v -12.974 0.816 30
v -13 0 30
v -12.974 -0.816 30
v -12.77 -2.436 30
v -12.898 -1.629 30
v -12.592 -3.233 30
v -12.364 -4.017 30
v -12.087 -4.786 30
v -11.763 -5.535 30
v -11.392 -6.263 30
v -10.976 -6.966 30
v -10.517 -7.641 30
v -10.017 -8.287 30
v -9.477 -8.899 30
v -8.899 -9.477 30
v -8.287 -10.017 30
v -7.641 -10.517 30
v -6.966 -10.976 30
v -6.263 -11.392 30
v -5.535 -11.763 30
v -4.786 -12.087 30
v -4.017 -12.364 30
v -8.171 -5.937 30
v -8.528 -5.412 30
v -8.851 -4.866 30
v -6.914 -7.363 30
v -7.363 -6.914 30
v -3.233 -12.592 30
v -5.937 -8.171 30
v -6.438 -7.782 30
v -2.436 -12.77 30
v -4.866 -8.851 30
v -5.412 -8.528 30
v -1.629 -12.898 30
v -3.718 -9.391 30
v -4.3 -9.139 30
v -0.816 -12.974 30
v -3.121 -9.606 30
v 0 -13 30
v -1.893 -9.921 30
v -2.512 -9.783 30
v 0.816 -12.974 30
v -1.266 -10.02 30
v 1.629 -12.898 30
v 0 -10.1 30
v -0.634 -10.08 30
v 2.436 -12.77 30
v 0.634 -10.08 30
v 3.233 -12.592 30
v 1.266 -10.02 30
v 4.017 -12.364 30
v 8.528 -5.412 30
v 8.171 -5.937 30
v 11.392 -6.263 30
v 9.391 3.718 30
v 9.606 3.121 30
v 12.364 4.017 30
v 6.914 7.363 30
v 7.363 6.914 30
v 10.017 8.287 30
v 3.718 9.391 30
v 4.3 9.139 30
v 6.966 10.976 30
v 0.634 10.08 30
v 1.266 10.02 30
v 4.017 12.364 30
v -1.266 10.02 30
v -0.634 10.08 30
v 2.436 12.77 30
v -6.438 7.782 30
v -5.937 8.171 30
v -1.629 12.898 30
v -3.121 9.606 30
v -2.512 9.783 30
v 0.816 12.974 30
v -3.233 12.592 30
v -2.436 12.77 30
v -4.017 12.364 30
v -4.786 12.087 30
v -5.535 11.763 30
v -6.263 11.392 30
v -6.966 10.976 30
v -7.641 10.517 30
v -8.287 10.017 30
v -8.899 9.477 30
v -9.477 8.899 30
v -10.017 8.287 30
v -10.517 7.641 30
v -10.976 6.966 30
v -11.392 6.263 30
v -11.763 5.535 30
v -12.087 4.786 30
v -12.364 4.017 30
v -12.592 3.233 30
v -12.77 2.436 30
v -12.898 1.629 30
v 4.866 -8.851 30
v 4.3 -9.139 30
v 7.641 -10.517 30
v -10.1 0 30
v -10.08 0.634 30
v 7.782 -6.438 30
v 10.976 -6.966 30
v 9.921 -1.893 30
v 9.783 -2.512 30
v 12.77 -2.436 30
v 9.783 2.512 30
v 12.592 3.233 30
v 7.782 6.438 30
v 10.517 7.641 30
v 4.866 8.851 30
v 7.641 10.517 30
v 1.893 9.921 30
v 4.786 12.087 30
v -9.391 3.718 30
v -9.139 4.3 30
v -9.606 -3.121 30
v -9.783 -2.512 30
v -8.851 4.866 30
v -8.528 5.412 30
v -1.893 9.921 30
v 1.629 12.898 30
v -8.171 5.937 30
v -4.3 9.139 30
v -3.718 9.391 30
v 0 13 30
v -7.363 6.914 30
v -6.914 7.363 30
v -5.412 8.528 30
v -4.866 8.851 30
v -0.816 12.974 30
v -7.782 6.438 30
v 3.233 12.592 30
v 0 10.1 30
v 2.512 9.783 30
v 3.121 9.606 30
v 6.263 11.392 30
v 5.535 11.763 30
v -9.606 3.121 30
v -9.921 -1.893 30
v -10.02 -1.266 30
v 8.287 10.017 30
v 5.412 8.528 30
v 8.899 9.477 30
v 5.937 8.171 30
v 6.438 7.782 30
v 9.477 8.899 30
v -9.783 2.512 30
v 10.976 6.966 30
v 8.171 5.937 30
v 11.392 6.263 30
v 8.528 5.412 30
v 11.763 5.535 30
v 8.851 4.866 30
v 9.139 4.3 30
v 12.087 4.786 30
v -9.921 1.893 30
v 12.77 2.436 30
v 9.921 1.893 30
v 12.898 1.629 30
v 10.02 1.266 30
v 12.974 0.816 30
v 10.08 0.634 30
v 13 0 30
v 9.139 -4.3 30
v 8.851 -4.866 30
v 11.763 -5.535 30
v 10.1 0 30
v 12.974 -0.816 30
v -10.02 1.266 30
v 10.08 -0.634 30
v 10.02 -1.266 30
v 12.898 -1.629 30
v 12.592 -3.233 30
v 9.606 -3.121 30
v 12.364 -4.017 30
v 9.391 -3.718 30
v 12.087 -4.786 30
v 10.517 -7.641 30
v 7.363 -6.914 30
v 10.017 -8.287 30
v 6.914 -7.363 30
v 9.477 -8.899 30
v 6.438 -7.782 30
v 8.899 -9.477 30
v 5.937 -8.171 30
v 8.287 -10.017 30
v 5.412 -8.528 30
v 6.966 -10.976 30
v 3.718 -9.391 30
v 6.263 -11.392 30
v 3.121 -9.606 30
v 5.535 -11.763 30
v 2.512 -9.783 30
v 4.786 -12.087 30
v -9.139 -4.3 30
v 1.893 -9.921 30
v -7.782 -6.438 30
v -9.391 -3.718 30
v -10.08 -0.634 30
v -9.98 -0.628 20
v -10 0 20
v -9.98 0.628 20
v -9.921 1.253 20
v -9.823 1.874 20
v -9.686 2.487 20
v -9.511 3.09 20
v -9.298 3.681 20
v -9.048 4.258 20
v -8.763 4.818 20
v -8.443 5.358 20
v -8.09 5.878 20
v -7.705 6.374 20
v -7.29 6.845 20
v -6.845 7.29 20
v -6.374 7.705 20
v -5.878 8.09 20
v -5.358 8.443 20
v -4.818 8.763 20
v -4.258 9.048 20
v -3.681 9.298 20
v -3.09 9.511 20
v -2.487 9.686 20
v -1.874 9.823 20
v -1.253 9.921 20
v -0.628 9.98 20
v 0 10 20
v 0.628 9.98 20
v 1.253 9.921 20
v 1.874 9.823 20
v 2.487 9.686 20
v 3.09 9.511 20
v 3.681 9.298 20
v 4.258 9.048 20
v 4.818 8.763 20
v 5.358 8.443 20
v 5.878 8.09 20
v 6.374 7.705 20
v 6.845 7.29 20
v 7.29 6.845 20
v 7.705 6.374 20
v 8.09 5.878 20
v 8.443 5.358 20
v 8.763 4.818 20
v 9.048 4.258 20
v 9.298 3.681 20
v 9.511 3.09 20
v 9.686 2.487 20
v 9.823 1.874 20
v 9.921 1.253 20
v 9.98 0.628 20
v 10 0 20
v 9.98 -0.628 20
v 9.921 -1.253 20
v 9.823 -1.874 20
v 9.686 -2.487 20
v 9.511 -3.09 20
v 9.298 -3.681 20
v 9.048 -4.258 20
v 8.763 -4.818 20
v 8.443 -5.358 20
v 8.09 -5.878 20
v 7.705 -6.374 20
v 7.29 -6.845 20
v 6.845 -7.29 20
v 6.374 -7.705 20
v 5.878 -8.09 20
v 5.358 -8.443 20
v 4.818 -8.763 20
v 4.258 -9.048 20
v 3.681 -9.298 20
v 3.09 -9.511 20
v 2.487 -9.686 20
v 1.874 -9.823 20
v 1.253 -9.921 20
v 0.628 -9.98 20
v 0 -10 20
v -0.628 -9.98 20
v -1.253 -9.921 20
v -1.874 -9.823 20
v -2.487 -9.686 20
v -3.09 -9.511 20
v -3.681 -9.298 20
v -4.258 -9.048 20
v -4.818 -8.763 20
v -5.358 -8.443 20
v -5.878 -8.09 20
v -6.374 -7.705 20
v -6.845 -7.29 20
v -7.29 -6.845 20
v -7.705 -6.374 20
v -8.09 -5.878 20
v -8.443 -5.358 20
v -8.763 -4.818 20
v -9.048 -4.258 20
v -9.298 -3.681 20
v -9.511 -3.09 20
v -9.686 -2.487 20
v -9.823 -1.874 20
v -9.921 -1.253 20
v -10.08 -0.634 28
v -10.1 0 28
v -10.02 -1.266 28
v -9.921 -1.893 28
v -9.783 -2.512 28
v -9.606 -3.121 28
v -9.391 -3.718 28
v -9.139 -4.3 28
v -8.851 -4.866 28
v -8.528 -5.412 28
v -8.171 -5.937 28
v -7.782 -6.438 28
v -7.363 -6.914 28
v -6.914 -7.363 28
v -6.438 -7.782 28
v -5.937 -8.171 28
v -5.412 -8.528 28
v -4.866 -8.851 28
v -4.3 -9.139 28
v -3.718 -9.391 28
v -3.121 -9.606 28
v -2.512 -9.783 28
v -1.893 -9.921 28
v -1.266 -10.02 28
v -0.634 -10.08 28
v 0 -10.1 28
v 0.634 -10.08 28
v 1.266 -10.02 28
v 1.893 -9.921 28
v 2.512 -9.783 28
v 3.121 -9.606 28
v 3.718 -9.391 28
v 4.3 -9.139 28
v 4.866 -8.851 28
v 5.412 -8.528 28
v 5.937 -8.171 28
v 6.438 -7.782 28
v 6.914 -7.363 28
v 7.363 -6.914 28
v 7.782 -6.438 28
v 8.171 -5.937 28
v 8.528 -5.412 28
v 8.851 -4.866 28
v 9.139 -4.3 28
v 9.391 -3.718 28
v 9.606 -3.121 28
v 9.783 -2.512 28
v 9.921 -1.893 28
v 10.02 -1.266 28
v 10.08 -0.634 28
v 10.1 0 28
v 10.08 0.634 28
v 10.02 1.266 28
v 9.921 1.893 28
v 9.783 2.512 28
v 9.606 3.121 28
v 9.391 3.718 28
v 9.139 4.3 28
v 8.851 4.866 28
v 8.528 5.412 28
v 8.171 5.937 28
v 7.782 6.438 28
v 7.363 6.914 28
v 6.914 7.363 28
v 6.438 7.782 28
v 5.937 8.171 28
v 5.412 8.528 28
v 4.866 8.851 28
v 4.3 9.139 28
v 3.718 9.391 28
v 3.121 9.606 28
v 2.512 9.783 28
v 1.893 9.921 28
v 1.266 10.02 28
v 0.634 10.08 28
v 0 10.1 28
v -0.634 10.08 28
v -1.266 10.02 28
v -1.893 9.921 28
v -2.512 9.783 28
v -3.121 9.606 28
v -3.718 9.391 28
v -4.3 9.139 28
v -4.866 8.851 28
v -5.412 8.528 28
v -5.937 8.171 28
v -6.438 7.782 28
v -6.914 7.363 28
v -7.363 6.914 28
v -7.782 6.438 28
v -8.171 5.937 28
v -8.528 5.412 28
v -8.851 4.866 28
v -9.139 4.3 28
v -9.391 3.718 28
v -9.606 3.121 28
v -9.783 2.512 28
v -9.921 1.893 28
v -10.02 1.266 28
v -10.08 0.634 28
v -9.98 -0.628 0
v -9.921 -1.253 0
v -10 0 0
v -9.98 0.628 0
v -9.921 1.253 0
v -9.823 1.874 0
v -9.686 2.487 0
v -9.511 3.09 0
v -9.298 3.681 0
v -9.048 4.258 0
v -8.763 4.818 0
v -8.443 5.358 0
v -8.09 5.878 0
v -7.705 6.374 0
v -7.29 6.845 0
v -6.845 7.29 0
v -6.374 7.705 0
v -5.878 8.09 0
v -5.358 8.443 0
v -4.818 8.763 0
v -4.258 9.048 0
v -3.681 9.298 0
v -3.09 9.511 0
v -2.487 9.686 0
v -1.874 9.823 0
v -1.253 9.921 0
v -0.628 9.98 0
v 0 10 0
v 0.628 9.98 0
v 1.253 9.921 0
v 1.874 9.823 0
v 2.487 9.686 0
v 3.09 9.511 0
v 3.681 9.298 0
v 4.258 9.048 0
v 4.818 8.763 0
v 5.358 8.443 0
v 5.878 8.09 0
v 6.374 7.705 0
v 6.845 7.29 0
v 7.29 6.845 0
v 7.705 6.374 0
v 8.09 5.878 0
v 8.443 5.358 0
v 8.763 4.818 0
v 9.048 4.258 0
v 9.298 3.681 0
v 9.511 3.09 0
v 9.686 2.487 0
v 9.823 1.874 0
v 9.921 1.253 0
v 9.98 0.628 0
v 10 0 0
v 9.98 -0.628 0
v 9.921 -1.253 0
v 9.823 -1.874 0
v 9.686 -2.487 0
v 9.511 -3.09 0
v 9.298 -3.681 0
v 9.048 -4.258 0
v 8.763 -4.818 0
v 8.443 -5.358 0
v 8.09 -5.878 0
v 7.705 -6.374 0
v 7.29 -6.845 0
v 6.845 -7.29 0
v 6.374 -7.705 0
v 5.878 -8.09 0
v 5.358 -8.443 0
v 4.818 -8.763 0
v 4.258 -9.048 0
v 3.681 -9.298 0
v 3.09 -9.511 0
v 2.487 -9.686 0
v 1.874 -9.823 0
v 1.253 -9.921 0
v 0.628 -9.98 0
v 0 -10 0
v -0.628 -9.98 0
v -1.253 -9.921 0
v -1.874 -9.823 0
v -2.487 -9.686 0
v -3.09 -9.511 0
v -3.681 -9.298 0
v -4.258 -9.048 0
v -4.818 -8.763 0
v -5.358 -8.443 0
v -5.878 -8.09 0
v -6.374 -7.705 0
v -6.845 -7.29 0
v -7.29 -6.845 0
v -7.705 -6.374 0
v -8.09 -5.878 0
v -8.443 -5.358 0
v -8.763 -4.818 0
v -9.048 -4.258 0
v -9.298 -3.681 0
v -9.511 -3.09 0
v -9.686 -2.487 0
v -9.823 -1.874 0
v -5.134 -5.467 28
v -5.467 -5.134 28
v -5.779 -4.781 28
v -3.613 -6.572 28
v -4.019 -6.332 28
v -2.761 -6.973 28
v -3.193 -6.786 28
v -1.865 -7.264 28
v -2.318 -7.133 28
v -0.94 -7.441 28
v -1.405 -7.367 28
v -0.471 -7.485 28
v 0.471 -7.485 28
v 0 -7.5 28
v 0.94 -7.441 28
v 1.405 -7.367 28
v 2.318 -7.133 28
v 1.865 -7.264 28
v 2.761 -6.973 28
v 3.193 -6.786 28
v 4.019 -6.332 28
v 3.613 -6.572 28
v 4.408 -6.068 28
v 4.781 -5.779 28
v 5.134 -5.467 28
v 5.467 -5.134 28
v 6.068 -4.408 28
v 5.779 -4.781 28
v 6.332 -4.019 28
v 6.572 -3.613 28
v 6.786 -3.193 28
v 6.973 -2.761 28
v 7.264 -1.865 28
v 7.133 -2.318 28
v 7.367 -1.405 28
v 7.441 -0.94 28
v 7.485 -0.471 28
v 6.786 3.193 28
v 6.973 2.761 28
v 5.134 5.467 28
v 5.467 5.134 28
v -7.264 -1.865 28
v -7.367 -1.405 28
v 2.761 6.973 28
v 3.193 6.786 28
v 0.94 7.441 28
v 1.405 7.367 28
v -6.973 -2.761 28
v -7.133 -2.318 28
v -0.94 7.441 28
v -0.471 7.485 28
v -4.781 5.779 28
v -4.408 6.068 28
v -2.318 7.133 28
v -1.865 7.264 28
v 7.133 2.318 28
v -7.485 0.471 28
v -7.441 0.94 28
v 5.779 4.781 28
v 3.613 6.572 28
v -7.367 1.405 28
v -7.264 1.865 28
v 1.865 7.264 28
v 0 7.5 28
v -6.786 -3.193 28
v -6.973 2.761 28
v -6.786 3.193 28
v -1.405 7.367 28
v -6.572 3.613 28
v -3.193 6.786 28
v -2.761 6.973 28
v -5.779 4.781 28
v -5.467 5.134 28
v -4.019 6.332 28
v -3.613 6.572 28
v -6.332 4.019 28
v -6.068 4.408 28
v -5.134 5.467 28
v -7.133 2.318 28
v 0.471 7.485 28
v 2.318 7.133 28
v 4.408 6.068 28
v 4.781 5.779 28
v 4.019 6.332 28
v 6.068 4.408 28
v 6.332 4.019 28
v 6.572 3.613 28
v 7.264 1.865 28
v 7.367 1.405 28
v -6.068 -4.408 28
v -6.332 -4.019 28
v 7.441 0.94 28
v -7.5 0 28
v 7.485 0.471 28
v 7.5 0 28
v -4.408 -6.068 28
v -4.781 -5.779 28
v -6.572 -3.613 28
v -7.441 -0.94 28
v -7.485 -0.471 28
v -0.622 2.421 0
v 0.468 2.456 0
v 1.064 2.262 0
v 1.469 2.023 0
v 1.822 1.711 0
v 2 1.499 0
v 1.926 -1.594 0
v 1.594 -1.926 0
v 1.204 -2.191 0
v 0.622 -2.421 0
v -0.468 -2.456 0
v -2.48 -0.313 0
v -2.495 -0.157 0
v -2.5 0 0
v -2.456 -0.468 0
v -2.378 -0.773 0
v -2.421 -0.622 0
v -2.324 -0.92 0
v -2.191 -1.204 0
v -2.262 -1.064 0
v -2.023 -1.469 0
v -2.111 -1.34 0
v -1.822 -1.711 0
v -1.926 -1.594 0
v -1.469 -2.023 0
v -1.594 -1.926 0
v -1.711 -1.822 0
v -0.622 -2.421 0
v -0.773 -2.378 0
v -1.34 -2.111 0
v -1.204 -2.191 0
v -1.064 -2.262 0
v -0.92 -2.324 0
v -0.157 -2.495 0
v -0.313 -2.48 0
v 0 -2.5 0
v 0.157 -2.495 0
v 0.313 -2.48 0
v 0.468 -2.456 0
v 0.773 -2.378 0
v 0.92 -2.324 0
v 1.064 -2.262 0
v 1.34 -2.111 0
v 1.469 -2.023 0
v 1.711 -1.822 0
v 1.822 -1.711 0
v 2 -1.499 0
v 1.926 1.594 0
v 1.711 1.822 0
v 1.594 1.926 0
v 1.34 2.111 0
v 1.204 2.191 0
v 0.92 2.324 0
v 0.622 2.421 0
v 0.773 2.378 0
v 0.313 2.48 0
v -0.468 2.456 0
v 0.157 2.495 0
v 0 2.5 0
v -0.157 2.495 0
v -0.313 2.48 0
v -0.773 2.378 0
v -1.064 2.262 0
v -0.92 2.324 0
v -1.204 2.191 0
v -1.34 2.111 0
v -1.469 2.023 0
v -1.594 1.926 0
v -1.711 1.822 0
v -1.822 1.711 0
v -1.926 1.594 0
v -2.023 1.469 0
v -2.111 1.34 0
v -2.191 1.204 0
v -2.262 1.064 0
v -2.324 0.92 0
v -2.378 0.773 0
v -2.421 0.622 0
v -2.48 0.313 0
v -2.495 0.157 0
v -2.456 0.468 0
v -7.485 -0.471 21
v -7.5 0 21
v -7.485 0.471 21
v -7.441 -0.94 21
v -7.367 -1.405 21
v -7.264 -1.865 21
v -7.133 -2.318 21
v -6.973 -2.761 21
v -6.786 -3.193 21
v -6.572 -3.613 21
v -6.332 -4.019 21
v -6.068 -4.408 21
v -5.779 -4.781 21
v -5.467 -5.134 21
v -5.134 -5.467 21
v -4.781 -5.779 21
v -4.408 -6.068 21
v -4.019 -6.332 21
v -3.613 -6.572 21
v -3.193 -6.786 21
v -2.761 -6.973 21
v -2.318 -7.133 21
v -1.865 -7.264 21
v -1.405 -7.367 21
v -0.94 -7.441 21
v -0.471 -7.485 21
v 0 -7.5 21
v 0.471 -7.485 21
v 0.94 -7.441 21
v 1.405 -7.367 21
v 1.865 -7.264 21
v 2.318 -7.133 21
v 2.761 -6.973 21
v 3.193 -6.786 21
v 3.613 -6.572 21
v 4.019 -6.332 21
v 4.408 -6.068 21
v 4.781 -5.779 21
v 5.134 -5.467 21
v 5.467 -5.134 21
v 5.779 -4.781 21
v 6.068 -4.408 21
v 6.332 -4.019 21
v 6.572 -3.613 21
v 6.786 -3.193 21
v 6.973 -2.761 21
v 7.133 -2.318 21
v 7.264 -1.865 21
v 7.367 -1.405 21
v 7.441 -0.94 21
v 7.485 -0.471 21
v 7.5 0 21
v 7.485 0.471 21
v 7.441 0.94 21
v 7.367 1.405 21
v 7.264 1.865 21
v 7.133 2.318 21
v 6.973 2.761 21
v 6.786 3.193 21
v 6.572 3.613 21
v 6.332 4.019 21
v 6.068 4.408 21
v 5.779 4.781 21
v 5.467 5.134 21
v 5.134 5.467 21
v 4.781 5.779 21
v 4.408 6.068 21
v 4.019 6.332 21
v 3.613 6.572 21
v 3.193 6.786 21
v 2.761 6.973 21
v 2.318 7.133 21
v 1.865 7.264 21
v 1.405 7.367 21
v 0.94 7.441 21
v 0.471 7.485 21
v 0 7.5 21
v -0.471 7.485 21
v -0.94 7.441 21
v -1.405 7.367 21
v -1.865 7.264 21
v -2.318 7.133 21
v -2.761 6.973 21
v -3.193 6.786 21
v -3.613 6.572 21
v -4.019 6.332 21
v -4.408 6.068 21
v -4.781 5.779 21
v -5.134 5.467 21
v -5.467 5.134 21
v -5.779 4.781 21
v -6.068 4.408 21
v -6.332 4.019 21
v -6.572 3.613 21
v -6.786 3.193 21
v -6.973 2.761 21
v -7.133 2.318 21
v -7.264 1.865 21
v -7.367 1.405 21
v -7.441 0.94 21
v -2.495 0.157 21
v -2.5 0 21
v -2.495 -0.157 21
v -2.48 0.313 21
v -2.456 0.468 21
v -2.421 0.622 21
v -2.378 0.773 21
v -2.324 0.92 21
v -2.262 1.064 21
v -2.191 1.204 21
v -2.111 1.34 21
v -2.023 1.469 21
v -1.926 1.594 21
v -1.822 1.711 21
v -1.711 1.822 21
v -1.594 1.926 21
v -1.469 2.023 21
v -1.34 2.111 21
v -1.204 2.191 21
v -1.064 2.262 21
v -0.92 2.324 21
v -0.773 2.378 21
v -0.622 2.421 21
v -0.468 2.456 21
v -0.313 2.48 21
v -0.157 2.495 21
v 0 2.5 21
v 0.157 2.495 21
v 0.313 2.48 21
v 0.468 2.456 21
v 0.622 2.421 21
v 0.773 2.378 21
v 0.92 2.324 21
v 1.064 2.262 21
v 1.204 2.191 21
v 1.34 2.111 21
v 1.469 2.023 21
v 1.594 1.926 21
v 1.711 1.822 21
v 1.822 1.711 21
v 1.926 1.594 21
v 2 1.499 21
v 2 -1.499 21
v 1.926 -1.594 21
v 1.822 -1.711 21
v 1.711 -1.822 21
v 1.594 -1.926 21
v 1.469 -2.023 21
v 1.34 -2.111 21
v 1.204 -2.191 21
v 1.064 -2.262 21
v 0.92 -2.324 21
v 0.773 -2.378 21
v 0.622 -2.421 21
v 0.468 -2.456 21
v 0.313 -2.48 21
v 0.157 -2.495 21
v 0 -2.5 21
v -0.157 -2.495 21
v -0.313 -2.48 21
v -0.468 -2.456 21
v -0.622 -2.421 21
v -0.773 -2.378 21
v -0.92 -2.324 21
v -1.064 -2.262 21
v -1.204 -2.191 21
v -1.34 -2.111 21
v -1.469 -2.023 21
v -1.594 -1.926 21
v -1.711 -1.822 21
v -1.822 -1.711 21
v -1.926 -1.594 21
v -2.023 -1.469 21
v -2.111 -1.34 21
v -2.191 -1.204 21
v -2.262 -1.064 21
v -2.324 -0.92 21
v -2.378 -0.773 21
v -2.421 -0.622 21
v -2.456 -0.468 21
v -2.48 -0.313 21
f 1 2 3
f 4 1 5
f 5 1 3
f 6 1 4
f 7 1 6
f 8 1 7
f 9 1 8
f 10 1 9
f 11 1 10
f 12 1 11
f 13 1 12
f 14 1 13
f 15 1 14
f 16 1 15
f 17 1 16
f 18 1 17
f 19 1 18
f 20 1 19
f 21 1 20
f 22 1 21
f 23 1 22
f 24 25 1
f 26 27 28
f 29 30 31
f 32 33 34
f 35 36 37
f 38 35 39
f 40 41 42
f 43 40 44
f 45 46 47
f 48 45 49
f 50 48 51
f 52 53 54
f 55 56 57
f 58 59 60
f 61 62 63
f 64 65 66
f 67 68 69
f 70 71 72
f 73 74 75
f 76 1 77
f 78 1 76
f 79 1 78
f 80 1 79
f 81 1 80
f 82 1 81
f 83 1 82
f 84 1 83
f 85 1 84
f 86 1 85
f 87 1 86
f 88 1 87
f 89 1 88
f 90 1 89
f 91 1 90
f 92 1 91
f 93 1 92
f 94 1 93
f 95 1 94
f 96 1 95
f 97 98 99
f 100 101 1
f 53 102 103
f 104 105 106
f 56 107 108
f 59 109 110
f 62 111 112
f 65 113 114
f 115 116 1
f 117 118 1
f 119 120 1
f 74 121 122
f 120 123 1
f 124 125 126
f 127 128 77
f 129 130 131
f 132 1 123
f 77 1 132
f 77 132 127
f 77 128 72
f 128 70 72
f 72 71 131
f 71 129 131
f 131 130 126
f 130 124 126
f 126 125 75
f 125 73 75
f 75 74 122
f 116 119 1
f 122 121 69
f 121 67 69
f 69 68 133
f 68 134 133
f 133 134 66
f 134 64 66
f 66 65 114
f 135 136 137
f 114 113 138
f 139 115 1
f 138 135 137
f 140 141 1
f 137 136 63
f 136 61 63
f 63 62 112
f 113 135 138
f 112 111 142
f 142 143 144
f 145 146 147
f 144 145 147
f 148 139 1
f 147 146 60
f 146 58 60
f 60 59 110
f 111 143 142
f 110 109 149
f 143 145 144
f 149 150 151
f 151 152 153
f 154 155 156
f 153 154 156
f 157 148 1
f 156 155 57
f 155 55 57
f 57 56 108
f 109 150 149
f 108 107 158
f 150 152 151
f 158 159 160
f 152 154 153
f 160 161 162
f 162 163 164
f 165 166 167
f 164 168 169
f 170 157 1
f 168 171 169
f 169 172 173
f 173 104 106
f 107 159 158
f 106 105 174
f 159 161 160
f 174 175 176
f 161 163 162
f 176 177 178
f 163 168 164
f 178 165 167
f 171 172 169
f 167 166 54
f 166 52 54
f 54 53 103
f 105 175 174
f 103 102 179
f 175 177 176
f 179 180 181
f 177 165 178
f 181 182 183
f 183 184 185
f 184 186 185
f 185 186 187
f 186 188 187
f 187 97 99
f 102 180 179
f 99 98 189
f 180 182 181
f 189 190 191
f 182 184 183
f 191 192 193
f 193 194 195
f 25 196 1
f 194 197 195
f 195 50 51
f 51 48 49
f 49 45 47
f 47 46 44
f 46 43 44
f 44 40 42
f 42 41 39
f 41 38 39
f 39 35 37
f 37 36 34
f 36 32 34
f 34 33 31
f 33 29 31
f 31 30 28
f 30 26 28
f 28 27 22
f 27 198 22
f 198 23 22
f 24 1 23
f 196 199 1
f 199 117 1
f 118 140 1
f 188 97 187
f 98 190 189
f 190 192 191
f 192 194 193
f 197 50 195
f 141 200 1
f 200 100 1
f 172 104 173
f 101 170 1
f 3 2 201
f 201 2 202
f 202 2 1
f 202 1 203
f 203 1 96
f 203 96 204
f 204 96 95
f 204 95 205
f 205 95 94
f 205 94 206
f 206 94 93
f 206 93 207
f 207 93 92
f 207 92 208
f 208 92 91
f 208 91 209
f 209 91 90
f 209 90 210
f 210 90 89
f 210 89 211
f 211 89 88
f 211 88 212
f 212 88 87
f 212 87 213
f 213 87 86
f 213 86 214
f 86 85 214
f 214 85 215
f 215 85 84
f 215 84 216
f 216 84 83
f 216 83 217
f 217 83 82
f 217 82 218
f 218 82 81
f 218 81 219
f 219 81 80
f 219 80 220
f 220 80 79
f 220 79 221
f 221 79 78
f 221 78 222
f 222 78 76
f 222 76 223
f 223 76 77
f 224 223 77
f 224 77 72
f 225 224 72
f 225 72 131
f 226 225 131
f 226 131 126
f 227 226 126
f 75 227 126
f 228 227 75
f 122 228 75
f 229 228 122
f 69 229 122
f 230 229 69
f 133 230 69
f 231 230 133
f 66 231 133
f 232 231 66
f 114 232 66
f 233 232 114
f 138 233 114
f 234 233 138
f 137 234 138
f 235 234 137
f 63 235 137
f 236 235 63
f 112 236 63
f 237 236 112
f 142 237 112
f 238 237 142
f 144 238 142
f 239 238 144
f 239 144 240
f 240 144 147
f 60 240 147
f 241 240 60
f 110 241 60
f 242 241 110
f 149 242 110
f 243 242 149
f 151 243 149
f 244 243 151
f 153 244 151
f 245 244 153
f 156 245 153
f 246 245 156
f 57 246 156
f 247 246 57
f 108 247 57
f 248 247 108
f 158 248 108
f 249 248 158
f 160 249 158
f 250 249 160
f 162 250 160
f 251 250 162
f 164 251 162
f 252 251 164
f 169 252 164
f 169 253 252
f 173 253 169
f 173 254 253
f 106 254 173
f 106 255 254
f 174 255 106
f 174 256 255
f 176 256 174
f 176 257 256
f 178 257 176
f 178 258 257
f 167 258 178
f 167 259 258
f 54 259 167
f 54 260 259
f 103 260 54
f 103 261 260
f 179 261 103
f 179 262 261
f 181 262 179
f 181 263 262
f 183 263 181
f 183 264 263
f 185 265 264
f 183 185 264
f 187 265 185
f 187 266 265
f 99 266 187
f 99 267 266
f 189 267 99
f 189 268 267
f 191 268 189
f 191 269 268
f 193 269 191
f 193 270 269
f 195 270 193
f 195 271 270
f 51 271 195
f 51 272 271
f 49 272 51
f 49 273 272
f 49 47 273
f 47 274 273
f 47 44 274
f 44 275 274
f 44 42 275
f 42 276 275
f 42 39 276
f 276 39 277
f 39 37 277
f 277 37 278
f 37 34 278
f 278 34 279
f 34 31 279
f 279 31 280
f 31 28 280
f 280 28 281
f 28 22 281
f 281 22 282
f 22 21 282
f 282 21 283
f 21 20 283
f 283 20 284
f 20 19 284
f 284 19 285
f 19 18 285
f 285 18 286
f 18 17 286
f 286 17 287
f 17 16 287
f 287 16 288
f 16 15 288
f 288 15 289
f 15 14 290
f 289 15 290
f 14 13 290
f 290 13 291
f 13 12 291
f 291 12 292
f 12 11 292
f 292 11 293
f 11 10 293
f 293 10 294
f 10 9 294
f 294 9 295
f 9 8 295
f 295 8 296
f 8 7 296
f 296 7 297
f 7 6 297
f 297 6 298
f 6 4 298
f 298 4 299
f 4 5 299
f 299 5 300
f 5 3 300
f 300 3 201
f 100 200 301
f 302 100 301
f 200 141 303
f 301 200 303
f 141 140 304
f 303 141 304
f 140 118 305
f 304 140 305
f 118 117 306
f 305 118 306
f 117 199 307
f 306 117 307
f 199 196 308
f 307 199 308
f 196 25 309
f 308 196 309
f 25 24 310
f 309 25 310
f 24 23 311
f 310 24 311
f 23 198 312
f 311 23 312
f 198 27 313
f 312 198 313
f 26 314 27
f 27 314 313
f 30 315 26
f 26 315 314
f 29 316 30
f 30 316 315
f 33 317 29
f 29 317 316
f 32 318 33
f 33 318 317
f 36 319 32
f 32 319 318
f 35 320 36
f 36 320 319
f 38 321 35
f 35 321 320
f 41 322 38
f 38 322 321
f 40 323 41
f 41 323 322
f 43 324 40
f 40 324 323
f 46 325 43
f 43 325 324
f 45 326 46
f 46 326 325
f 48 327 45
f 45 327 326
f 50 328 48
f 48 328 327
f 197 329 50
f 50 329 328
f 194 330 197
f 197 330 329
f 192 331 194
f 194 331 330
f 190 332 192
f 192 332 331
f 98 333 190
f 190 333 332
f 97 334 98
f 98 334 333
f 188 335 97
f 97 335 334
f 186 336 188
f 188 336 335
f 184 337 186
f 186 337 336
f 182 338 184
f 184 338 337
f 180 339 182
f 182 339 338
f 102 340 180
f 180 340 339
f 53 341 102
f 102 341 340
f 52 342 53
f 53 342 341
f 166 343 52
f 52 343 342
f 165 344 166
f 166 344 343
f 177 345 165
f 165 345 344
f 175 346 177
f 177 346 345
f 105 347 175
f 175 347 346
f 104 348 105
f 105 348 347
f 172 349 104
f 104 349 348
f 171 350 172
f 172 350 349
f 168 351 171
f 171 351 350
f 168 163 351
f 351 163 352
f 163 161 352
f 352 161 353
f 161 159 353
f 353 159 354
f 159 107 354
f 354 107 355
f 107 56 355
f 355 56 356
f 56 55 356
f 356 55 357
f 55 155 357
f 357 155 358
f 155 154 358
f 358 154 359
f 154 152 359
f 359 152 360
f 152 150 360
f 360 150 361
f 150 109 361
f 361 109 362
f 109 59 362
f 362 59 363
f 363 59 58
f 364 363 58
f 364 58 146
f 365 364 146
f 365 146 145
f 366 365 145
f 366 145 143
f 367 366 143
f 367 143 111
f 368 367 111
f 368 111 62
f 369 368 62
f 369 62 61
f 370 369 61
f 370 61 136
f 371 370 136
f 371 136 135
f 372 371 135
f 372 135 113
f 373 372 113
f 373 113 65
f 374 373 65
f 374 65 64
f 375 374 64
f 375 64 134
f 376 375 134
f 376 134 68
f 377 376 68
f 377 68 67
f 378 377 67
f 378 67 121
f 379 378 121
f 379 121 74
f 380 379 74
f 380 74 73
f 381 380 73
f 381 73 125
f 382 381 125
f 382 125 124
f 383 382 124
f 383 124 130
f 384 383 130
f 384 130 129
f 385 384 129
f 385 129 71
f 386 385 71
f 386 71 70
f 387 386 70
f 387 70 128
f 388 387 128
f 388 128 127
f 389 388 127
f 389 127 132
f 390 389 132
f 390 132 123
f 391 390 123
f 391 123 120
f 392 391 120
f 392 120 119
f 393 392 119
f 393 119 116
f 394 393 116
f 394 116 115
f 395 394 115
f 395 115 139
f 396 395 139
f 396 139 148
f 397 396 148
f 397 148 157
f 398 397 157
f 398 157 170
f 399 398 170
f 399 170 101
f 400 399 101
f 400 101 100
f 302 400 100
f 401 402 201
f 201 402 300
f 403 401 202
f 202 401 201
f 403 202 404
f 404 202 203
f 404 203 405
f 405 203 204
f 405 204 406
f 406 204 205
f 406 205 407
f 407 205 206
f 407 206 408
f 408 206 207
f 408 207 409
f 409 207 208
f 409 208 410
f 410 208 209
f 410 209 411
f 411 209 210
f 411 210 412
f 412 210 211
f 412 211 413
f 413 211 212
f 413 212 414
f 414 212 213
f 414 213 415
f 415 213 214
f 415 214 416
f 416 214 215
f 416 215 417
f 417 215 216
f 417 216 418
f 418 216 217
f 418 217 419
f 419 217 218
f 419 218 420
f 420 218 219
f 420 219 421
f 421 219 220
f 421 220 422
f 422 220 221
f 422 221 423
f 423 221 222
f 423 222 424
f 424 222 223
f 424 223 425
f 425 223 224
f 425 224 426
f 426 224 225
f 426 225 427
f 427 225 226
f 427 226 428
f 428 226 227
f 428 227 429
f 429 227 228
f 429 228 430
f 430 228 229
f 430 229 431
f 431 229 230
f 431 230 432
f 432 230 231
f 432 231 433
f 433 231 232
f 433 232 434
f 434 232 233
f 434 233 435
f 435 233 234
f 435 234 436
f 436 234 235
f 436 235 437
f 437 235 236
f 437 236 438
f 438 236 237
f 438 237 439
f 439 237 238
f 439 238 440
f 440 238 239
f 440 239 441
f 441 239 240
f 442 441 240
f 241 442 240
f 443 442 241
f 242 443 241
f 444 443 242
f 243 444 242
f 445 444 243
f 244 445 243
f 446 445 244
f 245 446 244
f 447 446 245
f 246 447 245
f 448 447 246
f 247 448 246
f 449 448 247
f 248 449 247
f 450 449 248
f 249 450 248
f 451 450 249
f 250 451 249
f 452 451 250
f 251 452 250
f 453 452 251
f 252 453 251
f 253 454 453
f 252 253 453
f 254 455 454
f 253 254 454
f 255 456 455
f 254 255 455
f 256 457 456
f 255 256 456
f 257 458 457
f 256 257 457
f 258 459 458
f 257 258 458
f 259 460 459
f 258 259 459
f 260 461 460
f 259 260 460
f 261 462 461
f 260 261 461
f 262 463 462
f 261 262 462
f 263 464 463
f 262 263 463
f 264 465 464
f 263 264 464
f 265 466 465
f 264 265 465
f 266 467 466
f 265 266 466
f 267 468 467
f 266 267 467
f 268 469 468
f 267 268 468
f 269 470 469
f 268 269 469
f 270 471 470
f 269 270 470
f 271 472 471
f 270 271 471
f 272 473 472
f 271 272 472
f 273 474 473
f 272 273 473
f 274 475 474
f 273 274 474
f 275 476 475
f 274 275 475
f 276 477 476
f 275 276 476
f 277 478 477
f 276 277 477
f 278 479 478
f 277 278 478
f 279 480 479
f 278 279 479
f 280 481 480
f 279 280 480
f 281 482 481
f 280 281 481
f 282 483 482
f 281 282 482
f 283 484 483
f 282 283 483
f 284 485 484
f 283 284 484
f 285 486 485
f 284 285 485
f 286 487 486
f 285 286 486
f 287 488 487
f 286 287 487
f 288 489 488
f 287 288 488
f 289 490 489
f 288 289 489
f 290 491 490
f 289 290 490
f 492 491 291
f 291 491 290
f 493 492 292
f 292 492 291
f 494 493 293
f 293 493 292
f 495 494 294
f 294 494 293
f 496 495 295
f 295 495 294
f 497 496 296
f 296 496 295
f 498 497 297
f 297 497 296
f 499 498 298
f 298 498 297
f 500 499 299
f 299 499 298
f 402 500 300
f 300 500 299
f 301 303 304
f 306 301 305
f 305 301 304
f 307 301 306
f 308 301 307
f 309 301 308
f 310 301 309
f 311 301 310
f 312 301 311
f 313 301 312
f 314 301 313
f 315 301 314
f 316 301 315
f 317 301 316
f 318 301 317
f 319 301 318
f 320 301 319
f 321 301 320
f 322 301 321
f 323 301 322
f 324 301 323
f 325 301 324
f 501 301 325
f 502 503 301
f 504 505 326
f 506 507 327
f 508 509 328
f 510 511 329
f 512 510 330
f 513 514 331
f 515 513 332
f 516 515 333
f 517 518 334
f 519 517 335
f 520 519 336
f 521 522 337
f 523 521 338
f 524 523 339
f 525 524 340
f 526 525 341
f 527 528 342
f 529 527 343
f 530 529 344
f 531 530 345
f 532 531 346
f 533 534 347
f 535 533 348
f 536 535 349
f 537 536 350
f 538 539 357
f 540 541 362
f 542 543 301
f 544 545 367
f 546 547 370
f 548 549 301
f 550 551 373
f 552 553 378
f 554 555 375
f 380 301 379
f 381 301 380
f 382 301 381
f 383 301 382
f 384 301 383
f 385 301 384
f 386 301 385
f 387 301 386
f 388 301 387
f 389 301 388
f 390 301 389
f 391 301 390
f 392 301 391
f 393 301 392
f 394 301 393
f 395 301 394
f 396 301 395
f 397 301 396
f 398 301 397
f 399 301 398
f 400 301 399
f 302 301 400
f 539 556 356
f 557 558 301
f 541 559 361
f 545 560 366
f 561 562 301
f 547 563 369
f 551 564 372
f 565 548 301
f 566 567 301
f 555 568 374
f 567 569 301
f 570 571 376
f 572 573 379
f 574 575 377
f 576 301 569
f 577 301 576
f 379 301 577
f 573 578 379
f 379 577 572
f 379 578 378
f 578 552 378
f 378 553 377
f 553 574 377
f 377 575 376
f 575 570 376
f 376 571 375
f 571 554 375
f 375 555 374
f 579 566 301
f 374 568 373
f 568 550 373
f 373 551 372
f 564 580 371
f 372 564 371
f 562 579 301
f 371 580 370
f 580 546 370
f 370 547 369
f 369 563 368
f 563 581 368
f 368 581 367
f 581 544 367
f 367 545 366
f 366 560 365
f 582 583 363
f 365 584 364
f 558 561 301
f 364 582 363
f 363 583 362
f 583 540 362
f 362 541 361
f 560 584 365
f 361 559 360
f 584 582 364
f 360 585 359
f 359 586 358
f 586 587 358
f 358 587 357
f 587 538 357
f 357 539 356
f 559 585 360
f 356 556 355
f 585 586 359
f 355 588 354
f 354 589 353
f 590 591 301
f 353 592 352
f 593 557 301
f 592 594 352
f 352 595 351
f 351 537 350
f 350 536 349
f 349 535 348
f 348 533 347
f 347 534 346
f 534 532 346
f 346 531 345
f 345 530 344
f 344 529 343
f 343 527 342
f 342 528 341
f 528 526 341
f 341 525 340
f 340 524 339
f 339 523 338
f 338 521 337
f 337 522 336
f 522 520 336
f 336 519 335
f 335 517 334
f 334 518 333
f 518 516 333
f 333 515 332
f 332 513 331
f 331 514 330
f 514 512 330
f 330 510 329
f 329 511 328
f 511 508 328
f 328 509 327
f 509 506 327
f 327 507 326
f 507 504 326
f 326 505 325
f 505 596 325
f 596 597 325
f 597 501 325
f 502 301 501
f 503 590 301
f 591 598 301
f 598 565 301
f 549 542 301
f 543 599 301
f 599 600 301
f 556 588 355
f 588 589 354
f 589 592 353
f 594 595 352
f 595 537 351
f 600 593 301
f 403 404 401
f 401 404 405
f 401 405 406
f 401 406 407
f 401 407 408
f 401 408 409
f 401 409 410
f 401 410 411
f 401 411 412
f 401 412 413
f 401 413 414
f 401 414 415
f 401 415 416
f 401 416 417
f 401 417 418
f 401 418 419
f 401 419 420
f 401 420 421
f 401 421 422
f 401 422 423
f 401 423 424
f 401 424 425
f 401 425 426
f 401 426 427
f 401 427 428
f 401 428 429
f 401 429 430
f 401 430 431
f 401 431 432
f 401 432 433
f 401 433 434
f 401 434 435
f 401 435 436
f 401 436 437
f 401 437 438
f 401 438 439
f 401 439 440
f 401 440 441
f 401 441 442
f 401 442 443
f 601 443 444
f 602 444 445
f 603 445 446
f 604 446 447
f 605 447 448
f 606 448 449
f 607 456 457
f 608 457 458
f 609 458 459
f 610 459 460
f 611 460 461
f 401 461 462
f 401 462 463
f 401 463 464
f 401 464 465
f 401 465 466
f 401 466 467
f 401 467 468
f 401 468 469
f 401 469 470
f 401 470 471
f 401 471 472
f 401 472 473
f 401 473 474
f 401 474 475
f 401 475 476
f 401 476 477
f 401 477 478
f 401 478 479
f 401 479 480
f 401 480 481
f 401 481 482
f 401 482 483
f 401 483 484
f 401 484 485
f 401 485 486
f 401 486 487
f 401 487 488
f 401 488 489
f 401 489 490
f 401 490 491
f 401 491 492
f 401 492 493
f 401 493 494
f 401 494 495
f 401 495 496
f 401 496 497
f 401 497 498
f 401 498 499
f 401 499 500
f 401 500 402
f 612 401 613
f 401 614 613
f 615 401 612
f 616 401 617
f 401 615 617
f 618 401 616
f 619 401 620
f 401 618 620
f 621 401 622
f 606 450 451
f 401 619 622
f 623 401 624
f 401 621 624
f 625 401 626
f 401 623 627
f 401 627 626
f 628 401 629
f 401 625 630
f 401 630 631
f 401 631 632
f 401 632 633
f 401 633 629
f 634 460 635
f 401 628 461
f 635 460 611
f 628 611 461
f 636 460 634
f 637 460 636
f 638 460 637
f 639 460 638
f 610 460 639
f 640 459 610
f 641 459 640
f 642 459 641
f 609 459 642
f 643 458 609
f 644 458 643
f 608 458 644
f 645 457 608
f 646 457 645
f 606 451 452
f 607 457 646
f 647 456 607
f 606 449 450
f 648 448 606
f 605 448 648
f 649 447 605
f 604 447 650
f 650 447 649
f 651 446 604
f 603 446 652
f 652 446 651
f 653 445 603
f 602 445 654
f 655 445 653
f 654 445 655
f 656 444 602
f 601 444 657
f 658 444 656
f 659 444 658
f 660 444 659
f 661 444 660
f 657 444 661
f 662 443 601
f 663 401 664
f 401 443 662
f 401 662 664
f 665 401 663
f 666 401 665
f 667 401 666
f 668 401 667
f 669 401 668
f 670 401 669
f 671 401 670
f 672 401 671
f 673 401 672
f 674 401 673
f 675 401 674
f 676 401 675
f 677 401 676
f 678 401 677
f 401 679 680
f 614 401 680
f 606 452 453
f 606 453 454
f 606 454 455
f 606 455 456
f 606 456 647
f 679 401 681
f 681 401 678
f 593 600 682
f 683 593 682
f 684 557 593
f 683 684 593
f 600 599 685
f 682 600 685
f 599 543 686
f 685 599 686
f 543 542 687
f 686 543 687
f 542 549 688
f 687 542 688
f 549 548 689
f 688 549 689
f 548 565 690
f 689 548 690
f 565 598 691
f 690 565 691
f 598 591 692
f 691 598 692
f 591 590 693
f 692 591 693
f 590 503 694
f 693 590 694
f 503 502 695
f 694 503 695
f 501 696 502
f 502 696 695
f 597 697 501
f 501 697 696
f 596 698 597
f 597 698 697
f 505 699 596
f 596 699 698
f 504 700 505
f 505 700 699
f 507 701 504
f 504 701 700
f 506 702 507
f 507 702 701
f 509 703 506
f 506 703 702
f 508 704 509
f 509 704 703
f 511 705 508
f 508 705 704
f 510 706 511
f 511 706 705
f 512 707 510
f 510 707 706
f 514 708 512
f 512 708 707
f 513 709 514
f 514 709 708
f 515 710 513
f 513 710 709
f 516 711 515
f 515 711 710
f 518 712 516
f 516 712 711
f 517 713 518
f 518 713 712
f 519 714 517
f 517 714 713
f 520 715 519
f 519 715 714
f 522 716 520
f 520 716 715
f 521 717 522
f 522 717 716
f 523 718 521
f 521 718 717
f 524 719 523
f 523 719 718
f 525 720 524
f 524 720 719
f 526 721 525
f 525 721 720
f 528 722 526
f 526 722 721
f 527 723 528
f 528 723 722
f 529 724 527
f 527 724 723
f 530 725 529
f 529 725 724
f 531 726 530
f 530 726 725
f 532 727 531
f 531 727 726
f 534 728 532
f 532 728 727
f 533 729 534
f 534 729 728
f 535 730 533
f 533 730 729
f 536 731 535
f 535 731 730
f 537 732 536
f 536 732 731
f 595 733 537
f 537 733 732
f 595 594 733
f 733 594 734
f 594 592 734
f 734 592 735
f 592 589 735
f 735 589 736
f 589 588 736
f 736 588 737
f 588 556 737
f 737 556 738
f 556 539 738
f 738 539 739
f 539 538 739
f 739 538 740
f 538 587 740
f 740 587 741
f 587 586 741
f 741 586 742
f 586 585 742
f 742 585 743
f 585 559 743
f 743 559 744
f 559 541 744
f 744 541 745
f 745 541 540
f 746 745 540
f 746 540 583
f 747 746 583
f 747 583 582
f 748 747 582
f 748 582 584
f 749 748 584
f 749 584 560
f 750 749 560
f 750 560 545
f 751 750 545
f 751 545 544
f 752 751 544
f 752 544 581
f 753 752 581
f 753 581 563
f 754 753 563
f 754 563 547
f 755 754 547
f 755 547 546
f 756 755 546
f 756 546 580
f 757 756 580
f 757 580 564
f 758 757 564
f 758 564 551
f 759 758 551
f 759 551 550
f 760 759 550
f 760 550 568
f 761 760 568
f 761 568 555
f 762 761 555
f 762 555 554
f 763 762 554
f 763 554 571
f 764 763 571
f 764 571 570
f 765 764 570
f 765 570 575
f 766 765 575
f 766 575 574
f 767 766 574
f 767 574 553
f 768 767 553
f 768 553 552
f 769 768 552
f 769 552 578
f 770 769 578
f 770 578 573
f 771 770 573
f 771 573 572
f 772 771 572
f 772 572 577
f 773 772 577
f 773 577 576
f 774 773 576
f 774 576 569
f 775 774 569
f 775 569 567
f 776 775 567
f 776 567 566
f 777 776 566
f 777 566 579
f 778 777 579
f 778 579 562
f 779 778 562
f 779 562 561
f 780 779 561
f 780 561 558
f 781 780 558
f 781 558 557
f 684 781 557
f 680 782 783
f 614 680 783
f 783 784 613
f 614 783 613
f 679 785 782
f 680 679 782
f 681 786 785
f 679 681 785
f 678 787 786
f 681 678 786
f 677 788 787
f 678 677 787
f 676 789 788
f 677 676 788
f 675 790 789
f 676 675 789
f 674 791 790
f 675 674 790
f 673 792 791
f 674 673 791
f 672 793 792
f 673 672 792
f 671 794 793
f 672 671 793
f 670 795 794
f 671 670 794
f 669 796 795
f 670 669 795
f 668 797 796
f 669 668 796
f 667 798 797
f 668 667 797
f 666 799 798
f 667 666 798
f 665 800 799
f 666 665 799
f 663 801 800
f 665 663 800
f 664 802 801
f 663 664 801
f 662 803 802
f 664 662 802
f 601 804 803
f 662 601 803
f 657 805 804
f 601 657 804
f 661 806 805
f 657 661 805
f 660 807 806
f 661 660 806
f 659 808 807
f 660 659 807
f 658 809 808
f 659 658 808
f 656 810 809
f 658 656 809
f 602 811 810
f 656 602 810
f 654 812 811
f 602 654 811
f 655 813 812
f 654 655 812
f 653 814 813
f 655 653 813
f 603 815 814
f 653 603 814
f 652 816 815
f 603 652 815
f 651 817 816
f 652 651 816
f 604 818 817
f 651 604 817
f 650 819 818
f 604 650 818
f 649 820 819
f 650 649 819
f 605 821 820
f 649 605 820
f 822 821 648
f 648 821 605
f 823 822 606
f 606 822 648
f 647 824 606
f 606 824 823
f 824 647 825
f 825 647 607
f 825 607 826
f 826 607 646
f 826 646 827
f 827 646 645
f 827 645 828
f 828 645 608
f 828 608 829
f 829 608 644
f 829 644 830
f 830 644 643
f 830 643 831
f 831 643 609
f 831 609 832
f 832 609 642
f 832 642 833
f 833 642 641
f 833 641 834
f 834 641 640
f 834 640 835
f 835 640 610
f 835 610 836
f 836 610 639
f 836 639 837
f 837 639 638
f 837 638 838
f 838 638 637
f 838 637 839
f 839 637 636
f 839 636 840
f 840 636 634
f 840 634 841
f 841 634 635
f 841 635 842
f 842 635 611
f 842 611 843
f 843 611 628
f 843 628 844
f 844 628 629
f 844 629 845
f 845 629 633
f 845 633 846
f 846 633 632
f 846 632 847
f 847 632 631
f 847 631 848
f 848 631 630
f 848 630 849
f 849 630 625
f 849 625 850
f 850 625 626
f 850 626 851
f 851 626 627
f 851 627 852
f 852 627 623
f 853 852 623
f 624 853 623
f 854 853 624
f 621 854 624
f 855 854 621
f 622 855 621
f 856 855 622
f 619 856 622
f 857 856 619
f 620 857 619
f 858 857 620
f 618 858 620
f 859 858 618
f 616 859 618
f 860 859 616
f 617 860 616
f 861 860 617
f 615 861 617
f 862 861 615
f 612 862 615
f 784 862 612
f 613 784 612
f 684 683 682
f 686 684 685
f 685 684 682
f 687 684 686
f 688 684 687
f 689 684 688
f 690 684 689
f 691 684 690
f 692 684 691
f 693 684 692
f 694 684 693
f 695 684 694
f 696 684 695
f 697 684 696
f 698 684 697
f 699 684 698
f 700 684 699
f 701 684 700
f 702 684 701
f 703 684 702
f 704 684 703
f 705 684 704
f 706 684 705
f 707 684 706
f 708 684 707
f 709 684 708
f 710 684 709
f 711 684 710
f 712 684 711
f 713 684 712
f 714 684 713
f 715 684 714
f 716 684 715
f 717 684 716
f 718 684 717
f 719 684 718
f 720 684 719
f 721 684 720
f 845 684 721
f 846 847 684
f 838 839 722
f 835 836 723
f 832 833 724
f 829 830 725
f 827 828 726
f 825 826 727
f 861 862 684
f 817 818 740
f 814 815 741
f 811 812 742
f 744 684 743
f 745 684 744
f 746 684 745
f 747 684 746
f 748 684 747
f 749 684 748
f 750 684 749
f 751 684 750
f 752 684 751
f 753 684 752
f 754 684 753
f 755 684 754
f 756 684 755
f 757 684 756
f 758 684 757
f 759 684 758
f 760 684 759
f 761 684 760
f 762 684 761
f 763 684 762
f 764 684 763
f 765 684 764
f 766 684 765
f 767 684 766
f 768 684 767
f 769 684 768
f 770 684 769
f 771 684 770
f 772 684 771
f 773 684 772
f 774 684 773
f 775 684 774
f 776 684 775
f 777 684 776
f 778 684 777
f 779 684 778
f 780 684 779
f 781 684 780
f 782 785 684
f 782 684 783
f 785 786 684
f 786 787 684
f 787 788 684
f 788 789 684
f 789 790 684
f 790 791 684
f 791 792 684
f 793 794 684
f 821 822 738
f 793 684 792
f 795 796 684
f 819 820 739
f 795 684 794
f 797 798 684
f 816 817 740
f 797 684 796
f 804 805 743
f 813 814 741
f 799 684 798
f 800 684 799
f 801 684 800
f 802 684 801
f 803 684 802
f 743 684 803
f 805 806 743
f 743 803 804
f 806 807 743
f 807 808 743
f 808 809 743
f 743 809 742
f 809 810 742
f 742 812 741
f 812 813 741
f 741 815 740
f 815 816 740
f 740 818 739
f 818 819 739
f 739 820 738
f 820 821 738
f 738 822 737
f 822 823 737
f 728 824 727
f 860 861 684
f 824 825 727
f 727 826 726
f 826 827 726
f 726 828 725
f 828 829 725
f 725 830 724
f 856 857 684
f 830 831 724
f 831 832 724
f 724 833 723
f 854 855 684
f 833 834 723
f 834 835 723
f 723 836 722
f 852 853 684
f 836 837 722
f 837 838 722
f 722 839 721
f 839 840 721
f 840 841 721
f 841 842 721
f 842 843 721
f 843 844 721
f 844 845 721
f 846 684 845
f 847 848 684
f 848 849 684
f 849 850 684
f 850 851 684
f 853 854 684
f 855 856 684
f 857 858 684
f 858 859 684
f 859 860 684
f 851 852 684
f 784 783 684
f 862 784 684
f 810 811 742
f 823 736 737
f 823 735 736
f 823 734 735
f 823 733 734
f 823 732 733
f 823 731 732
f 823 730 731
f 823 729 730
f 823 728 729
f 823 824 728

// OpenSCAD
// C-EGG Antriebsteile 3D Druck


difference() {
  cylinder(h=21, r=10, $fn=100);
  translate([0,0,-1]) cylinder(h=25, r=2.5, $fn=100);
}

translate([2,-4,0]) cube([5,8,21]);

difference() {
  translate([0,0,20]) cylinder(h=10, r2=13, r1=10, $fn=100);
  translate([0,0,19]) cylinder(h=12, r=7.5,$fn=100);
  translate([0,0,28]) cylinder(h=10, r=10.1,$fn=100);
}
